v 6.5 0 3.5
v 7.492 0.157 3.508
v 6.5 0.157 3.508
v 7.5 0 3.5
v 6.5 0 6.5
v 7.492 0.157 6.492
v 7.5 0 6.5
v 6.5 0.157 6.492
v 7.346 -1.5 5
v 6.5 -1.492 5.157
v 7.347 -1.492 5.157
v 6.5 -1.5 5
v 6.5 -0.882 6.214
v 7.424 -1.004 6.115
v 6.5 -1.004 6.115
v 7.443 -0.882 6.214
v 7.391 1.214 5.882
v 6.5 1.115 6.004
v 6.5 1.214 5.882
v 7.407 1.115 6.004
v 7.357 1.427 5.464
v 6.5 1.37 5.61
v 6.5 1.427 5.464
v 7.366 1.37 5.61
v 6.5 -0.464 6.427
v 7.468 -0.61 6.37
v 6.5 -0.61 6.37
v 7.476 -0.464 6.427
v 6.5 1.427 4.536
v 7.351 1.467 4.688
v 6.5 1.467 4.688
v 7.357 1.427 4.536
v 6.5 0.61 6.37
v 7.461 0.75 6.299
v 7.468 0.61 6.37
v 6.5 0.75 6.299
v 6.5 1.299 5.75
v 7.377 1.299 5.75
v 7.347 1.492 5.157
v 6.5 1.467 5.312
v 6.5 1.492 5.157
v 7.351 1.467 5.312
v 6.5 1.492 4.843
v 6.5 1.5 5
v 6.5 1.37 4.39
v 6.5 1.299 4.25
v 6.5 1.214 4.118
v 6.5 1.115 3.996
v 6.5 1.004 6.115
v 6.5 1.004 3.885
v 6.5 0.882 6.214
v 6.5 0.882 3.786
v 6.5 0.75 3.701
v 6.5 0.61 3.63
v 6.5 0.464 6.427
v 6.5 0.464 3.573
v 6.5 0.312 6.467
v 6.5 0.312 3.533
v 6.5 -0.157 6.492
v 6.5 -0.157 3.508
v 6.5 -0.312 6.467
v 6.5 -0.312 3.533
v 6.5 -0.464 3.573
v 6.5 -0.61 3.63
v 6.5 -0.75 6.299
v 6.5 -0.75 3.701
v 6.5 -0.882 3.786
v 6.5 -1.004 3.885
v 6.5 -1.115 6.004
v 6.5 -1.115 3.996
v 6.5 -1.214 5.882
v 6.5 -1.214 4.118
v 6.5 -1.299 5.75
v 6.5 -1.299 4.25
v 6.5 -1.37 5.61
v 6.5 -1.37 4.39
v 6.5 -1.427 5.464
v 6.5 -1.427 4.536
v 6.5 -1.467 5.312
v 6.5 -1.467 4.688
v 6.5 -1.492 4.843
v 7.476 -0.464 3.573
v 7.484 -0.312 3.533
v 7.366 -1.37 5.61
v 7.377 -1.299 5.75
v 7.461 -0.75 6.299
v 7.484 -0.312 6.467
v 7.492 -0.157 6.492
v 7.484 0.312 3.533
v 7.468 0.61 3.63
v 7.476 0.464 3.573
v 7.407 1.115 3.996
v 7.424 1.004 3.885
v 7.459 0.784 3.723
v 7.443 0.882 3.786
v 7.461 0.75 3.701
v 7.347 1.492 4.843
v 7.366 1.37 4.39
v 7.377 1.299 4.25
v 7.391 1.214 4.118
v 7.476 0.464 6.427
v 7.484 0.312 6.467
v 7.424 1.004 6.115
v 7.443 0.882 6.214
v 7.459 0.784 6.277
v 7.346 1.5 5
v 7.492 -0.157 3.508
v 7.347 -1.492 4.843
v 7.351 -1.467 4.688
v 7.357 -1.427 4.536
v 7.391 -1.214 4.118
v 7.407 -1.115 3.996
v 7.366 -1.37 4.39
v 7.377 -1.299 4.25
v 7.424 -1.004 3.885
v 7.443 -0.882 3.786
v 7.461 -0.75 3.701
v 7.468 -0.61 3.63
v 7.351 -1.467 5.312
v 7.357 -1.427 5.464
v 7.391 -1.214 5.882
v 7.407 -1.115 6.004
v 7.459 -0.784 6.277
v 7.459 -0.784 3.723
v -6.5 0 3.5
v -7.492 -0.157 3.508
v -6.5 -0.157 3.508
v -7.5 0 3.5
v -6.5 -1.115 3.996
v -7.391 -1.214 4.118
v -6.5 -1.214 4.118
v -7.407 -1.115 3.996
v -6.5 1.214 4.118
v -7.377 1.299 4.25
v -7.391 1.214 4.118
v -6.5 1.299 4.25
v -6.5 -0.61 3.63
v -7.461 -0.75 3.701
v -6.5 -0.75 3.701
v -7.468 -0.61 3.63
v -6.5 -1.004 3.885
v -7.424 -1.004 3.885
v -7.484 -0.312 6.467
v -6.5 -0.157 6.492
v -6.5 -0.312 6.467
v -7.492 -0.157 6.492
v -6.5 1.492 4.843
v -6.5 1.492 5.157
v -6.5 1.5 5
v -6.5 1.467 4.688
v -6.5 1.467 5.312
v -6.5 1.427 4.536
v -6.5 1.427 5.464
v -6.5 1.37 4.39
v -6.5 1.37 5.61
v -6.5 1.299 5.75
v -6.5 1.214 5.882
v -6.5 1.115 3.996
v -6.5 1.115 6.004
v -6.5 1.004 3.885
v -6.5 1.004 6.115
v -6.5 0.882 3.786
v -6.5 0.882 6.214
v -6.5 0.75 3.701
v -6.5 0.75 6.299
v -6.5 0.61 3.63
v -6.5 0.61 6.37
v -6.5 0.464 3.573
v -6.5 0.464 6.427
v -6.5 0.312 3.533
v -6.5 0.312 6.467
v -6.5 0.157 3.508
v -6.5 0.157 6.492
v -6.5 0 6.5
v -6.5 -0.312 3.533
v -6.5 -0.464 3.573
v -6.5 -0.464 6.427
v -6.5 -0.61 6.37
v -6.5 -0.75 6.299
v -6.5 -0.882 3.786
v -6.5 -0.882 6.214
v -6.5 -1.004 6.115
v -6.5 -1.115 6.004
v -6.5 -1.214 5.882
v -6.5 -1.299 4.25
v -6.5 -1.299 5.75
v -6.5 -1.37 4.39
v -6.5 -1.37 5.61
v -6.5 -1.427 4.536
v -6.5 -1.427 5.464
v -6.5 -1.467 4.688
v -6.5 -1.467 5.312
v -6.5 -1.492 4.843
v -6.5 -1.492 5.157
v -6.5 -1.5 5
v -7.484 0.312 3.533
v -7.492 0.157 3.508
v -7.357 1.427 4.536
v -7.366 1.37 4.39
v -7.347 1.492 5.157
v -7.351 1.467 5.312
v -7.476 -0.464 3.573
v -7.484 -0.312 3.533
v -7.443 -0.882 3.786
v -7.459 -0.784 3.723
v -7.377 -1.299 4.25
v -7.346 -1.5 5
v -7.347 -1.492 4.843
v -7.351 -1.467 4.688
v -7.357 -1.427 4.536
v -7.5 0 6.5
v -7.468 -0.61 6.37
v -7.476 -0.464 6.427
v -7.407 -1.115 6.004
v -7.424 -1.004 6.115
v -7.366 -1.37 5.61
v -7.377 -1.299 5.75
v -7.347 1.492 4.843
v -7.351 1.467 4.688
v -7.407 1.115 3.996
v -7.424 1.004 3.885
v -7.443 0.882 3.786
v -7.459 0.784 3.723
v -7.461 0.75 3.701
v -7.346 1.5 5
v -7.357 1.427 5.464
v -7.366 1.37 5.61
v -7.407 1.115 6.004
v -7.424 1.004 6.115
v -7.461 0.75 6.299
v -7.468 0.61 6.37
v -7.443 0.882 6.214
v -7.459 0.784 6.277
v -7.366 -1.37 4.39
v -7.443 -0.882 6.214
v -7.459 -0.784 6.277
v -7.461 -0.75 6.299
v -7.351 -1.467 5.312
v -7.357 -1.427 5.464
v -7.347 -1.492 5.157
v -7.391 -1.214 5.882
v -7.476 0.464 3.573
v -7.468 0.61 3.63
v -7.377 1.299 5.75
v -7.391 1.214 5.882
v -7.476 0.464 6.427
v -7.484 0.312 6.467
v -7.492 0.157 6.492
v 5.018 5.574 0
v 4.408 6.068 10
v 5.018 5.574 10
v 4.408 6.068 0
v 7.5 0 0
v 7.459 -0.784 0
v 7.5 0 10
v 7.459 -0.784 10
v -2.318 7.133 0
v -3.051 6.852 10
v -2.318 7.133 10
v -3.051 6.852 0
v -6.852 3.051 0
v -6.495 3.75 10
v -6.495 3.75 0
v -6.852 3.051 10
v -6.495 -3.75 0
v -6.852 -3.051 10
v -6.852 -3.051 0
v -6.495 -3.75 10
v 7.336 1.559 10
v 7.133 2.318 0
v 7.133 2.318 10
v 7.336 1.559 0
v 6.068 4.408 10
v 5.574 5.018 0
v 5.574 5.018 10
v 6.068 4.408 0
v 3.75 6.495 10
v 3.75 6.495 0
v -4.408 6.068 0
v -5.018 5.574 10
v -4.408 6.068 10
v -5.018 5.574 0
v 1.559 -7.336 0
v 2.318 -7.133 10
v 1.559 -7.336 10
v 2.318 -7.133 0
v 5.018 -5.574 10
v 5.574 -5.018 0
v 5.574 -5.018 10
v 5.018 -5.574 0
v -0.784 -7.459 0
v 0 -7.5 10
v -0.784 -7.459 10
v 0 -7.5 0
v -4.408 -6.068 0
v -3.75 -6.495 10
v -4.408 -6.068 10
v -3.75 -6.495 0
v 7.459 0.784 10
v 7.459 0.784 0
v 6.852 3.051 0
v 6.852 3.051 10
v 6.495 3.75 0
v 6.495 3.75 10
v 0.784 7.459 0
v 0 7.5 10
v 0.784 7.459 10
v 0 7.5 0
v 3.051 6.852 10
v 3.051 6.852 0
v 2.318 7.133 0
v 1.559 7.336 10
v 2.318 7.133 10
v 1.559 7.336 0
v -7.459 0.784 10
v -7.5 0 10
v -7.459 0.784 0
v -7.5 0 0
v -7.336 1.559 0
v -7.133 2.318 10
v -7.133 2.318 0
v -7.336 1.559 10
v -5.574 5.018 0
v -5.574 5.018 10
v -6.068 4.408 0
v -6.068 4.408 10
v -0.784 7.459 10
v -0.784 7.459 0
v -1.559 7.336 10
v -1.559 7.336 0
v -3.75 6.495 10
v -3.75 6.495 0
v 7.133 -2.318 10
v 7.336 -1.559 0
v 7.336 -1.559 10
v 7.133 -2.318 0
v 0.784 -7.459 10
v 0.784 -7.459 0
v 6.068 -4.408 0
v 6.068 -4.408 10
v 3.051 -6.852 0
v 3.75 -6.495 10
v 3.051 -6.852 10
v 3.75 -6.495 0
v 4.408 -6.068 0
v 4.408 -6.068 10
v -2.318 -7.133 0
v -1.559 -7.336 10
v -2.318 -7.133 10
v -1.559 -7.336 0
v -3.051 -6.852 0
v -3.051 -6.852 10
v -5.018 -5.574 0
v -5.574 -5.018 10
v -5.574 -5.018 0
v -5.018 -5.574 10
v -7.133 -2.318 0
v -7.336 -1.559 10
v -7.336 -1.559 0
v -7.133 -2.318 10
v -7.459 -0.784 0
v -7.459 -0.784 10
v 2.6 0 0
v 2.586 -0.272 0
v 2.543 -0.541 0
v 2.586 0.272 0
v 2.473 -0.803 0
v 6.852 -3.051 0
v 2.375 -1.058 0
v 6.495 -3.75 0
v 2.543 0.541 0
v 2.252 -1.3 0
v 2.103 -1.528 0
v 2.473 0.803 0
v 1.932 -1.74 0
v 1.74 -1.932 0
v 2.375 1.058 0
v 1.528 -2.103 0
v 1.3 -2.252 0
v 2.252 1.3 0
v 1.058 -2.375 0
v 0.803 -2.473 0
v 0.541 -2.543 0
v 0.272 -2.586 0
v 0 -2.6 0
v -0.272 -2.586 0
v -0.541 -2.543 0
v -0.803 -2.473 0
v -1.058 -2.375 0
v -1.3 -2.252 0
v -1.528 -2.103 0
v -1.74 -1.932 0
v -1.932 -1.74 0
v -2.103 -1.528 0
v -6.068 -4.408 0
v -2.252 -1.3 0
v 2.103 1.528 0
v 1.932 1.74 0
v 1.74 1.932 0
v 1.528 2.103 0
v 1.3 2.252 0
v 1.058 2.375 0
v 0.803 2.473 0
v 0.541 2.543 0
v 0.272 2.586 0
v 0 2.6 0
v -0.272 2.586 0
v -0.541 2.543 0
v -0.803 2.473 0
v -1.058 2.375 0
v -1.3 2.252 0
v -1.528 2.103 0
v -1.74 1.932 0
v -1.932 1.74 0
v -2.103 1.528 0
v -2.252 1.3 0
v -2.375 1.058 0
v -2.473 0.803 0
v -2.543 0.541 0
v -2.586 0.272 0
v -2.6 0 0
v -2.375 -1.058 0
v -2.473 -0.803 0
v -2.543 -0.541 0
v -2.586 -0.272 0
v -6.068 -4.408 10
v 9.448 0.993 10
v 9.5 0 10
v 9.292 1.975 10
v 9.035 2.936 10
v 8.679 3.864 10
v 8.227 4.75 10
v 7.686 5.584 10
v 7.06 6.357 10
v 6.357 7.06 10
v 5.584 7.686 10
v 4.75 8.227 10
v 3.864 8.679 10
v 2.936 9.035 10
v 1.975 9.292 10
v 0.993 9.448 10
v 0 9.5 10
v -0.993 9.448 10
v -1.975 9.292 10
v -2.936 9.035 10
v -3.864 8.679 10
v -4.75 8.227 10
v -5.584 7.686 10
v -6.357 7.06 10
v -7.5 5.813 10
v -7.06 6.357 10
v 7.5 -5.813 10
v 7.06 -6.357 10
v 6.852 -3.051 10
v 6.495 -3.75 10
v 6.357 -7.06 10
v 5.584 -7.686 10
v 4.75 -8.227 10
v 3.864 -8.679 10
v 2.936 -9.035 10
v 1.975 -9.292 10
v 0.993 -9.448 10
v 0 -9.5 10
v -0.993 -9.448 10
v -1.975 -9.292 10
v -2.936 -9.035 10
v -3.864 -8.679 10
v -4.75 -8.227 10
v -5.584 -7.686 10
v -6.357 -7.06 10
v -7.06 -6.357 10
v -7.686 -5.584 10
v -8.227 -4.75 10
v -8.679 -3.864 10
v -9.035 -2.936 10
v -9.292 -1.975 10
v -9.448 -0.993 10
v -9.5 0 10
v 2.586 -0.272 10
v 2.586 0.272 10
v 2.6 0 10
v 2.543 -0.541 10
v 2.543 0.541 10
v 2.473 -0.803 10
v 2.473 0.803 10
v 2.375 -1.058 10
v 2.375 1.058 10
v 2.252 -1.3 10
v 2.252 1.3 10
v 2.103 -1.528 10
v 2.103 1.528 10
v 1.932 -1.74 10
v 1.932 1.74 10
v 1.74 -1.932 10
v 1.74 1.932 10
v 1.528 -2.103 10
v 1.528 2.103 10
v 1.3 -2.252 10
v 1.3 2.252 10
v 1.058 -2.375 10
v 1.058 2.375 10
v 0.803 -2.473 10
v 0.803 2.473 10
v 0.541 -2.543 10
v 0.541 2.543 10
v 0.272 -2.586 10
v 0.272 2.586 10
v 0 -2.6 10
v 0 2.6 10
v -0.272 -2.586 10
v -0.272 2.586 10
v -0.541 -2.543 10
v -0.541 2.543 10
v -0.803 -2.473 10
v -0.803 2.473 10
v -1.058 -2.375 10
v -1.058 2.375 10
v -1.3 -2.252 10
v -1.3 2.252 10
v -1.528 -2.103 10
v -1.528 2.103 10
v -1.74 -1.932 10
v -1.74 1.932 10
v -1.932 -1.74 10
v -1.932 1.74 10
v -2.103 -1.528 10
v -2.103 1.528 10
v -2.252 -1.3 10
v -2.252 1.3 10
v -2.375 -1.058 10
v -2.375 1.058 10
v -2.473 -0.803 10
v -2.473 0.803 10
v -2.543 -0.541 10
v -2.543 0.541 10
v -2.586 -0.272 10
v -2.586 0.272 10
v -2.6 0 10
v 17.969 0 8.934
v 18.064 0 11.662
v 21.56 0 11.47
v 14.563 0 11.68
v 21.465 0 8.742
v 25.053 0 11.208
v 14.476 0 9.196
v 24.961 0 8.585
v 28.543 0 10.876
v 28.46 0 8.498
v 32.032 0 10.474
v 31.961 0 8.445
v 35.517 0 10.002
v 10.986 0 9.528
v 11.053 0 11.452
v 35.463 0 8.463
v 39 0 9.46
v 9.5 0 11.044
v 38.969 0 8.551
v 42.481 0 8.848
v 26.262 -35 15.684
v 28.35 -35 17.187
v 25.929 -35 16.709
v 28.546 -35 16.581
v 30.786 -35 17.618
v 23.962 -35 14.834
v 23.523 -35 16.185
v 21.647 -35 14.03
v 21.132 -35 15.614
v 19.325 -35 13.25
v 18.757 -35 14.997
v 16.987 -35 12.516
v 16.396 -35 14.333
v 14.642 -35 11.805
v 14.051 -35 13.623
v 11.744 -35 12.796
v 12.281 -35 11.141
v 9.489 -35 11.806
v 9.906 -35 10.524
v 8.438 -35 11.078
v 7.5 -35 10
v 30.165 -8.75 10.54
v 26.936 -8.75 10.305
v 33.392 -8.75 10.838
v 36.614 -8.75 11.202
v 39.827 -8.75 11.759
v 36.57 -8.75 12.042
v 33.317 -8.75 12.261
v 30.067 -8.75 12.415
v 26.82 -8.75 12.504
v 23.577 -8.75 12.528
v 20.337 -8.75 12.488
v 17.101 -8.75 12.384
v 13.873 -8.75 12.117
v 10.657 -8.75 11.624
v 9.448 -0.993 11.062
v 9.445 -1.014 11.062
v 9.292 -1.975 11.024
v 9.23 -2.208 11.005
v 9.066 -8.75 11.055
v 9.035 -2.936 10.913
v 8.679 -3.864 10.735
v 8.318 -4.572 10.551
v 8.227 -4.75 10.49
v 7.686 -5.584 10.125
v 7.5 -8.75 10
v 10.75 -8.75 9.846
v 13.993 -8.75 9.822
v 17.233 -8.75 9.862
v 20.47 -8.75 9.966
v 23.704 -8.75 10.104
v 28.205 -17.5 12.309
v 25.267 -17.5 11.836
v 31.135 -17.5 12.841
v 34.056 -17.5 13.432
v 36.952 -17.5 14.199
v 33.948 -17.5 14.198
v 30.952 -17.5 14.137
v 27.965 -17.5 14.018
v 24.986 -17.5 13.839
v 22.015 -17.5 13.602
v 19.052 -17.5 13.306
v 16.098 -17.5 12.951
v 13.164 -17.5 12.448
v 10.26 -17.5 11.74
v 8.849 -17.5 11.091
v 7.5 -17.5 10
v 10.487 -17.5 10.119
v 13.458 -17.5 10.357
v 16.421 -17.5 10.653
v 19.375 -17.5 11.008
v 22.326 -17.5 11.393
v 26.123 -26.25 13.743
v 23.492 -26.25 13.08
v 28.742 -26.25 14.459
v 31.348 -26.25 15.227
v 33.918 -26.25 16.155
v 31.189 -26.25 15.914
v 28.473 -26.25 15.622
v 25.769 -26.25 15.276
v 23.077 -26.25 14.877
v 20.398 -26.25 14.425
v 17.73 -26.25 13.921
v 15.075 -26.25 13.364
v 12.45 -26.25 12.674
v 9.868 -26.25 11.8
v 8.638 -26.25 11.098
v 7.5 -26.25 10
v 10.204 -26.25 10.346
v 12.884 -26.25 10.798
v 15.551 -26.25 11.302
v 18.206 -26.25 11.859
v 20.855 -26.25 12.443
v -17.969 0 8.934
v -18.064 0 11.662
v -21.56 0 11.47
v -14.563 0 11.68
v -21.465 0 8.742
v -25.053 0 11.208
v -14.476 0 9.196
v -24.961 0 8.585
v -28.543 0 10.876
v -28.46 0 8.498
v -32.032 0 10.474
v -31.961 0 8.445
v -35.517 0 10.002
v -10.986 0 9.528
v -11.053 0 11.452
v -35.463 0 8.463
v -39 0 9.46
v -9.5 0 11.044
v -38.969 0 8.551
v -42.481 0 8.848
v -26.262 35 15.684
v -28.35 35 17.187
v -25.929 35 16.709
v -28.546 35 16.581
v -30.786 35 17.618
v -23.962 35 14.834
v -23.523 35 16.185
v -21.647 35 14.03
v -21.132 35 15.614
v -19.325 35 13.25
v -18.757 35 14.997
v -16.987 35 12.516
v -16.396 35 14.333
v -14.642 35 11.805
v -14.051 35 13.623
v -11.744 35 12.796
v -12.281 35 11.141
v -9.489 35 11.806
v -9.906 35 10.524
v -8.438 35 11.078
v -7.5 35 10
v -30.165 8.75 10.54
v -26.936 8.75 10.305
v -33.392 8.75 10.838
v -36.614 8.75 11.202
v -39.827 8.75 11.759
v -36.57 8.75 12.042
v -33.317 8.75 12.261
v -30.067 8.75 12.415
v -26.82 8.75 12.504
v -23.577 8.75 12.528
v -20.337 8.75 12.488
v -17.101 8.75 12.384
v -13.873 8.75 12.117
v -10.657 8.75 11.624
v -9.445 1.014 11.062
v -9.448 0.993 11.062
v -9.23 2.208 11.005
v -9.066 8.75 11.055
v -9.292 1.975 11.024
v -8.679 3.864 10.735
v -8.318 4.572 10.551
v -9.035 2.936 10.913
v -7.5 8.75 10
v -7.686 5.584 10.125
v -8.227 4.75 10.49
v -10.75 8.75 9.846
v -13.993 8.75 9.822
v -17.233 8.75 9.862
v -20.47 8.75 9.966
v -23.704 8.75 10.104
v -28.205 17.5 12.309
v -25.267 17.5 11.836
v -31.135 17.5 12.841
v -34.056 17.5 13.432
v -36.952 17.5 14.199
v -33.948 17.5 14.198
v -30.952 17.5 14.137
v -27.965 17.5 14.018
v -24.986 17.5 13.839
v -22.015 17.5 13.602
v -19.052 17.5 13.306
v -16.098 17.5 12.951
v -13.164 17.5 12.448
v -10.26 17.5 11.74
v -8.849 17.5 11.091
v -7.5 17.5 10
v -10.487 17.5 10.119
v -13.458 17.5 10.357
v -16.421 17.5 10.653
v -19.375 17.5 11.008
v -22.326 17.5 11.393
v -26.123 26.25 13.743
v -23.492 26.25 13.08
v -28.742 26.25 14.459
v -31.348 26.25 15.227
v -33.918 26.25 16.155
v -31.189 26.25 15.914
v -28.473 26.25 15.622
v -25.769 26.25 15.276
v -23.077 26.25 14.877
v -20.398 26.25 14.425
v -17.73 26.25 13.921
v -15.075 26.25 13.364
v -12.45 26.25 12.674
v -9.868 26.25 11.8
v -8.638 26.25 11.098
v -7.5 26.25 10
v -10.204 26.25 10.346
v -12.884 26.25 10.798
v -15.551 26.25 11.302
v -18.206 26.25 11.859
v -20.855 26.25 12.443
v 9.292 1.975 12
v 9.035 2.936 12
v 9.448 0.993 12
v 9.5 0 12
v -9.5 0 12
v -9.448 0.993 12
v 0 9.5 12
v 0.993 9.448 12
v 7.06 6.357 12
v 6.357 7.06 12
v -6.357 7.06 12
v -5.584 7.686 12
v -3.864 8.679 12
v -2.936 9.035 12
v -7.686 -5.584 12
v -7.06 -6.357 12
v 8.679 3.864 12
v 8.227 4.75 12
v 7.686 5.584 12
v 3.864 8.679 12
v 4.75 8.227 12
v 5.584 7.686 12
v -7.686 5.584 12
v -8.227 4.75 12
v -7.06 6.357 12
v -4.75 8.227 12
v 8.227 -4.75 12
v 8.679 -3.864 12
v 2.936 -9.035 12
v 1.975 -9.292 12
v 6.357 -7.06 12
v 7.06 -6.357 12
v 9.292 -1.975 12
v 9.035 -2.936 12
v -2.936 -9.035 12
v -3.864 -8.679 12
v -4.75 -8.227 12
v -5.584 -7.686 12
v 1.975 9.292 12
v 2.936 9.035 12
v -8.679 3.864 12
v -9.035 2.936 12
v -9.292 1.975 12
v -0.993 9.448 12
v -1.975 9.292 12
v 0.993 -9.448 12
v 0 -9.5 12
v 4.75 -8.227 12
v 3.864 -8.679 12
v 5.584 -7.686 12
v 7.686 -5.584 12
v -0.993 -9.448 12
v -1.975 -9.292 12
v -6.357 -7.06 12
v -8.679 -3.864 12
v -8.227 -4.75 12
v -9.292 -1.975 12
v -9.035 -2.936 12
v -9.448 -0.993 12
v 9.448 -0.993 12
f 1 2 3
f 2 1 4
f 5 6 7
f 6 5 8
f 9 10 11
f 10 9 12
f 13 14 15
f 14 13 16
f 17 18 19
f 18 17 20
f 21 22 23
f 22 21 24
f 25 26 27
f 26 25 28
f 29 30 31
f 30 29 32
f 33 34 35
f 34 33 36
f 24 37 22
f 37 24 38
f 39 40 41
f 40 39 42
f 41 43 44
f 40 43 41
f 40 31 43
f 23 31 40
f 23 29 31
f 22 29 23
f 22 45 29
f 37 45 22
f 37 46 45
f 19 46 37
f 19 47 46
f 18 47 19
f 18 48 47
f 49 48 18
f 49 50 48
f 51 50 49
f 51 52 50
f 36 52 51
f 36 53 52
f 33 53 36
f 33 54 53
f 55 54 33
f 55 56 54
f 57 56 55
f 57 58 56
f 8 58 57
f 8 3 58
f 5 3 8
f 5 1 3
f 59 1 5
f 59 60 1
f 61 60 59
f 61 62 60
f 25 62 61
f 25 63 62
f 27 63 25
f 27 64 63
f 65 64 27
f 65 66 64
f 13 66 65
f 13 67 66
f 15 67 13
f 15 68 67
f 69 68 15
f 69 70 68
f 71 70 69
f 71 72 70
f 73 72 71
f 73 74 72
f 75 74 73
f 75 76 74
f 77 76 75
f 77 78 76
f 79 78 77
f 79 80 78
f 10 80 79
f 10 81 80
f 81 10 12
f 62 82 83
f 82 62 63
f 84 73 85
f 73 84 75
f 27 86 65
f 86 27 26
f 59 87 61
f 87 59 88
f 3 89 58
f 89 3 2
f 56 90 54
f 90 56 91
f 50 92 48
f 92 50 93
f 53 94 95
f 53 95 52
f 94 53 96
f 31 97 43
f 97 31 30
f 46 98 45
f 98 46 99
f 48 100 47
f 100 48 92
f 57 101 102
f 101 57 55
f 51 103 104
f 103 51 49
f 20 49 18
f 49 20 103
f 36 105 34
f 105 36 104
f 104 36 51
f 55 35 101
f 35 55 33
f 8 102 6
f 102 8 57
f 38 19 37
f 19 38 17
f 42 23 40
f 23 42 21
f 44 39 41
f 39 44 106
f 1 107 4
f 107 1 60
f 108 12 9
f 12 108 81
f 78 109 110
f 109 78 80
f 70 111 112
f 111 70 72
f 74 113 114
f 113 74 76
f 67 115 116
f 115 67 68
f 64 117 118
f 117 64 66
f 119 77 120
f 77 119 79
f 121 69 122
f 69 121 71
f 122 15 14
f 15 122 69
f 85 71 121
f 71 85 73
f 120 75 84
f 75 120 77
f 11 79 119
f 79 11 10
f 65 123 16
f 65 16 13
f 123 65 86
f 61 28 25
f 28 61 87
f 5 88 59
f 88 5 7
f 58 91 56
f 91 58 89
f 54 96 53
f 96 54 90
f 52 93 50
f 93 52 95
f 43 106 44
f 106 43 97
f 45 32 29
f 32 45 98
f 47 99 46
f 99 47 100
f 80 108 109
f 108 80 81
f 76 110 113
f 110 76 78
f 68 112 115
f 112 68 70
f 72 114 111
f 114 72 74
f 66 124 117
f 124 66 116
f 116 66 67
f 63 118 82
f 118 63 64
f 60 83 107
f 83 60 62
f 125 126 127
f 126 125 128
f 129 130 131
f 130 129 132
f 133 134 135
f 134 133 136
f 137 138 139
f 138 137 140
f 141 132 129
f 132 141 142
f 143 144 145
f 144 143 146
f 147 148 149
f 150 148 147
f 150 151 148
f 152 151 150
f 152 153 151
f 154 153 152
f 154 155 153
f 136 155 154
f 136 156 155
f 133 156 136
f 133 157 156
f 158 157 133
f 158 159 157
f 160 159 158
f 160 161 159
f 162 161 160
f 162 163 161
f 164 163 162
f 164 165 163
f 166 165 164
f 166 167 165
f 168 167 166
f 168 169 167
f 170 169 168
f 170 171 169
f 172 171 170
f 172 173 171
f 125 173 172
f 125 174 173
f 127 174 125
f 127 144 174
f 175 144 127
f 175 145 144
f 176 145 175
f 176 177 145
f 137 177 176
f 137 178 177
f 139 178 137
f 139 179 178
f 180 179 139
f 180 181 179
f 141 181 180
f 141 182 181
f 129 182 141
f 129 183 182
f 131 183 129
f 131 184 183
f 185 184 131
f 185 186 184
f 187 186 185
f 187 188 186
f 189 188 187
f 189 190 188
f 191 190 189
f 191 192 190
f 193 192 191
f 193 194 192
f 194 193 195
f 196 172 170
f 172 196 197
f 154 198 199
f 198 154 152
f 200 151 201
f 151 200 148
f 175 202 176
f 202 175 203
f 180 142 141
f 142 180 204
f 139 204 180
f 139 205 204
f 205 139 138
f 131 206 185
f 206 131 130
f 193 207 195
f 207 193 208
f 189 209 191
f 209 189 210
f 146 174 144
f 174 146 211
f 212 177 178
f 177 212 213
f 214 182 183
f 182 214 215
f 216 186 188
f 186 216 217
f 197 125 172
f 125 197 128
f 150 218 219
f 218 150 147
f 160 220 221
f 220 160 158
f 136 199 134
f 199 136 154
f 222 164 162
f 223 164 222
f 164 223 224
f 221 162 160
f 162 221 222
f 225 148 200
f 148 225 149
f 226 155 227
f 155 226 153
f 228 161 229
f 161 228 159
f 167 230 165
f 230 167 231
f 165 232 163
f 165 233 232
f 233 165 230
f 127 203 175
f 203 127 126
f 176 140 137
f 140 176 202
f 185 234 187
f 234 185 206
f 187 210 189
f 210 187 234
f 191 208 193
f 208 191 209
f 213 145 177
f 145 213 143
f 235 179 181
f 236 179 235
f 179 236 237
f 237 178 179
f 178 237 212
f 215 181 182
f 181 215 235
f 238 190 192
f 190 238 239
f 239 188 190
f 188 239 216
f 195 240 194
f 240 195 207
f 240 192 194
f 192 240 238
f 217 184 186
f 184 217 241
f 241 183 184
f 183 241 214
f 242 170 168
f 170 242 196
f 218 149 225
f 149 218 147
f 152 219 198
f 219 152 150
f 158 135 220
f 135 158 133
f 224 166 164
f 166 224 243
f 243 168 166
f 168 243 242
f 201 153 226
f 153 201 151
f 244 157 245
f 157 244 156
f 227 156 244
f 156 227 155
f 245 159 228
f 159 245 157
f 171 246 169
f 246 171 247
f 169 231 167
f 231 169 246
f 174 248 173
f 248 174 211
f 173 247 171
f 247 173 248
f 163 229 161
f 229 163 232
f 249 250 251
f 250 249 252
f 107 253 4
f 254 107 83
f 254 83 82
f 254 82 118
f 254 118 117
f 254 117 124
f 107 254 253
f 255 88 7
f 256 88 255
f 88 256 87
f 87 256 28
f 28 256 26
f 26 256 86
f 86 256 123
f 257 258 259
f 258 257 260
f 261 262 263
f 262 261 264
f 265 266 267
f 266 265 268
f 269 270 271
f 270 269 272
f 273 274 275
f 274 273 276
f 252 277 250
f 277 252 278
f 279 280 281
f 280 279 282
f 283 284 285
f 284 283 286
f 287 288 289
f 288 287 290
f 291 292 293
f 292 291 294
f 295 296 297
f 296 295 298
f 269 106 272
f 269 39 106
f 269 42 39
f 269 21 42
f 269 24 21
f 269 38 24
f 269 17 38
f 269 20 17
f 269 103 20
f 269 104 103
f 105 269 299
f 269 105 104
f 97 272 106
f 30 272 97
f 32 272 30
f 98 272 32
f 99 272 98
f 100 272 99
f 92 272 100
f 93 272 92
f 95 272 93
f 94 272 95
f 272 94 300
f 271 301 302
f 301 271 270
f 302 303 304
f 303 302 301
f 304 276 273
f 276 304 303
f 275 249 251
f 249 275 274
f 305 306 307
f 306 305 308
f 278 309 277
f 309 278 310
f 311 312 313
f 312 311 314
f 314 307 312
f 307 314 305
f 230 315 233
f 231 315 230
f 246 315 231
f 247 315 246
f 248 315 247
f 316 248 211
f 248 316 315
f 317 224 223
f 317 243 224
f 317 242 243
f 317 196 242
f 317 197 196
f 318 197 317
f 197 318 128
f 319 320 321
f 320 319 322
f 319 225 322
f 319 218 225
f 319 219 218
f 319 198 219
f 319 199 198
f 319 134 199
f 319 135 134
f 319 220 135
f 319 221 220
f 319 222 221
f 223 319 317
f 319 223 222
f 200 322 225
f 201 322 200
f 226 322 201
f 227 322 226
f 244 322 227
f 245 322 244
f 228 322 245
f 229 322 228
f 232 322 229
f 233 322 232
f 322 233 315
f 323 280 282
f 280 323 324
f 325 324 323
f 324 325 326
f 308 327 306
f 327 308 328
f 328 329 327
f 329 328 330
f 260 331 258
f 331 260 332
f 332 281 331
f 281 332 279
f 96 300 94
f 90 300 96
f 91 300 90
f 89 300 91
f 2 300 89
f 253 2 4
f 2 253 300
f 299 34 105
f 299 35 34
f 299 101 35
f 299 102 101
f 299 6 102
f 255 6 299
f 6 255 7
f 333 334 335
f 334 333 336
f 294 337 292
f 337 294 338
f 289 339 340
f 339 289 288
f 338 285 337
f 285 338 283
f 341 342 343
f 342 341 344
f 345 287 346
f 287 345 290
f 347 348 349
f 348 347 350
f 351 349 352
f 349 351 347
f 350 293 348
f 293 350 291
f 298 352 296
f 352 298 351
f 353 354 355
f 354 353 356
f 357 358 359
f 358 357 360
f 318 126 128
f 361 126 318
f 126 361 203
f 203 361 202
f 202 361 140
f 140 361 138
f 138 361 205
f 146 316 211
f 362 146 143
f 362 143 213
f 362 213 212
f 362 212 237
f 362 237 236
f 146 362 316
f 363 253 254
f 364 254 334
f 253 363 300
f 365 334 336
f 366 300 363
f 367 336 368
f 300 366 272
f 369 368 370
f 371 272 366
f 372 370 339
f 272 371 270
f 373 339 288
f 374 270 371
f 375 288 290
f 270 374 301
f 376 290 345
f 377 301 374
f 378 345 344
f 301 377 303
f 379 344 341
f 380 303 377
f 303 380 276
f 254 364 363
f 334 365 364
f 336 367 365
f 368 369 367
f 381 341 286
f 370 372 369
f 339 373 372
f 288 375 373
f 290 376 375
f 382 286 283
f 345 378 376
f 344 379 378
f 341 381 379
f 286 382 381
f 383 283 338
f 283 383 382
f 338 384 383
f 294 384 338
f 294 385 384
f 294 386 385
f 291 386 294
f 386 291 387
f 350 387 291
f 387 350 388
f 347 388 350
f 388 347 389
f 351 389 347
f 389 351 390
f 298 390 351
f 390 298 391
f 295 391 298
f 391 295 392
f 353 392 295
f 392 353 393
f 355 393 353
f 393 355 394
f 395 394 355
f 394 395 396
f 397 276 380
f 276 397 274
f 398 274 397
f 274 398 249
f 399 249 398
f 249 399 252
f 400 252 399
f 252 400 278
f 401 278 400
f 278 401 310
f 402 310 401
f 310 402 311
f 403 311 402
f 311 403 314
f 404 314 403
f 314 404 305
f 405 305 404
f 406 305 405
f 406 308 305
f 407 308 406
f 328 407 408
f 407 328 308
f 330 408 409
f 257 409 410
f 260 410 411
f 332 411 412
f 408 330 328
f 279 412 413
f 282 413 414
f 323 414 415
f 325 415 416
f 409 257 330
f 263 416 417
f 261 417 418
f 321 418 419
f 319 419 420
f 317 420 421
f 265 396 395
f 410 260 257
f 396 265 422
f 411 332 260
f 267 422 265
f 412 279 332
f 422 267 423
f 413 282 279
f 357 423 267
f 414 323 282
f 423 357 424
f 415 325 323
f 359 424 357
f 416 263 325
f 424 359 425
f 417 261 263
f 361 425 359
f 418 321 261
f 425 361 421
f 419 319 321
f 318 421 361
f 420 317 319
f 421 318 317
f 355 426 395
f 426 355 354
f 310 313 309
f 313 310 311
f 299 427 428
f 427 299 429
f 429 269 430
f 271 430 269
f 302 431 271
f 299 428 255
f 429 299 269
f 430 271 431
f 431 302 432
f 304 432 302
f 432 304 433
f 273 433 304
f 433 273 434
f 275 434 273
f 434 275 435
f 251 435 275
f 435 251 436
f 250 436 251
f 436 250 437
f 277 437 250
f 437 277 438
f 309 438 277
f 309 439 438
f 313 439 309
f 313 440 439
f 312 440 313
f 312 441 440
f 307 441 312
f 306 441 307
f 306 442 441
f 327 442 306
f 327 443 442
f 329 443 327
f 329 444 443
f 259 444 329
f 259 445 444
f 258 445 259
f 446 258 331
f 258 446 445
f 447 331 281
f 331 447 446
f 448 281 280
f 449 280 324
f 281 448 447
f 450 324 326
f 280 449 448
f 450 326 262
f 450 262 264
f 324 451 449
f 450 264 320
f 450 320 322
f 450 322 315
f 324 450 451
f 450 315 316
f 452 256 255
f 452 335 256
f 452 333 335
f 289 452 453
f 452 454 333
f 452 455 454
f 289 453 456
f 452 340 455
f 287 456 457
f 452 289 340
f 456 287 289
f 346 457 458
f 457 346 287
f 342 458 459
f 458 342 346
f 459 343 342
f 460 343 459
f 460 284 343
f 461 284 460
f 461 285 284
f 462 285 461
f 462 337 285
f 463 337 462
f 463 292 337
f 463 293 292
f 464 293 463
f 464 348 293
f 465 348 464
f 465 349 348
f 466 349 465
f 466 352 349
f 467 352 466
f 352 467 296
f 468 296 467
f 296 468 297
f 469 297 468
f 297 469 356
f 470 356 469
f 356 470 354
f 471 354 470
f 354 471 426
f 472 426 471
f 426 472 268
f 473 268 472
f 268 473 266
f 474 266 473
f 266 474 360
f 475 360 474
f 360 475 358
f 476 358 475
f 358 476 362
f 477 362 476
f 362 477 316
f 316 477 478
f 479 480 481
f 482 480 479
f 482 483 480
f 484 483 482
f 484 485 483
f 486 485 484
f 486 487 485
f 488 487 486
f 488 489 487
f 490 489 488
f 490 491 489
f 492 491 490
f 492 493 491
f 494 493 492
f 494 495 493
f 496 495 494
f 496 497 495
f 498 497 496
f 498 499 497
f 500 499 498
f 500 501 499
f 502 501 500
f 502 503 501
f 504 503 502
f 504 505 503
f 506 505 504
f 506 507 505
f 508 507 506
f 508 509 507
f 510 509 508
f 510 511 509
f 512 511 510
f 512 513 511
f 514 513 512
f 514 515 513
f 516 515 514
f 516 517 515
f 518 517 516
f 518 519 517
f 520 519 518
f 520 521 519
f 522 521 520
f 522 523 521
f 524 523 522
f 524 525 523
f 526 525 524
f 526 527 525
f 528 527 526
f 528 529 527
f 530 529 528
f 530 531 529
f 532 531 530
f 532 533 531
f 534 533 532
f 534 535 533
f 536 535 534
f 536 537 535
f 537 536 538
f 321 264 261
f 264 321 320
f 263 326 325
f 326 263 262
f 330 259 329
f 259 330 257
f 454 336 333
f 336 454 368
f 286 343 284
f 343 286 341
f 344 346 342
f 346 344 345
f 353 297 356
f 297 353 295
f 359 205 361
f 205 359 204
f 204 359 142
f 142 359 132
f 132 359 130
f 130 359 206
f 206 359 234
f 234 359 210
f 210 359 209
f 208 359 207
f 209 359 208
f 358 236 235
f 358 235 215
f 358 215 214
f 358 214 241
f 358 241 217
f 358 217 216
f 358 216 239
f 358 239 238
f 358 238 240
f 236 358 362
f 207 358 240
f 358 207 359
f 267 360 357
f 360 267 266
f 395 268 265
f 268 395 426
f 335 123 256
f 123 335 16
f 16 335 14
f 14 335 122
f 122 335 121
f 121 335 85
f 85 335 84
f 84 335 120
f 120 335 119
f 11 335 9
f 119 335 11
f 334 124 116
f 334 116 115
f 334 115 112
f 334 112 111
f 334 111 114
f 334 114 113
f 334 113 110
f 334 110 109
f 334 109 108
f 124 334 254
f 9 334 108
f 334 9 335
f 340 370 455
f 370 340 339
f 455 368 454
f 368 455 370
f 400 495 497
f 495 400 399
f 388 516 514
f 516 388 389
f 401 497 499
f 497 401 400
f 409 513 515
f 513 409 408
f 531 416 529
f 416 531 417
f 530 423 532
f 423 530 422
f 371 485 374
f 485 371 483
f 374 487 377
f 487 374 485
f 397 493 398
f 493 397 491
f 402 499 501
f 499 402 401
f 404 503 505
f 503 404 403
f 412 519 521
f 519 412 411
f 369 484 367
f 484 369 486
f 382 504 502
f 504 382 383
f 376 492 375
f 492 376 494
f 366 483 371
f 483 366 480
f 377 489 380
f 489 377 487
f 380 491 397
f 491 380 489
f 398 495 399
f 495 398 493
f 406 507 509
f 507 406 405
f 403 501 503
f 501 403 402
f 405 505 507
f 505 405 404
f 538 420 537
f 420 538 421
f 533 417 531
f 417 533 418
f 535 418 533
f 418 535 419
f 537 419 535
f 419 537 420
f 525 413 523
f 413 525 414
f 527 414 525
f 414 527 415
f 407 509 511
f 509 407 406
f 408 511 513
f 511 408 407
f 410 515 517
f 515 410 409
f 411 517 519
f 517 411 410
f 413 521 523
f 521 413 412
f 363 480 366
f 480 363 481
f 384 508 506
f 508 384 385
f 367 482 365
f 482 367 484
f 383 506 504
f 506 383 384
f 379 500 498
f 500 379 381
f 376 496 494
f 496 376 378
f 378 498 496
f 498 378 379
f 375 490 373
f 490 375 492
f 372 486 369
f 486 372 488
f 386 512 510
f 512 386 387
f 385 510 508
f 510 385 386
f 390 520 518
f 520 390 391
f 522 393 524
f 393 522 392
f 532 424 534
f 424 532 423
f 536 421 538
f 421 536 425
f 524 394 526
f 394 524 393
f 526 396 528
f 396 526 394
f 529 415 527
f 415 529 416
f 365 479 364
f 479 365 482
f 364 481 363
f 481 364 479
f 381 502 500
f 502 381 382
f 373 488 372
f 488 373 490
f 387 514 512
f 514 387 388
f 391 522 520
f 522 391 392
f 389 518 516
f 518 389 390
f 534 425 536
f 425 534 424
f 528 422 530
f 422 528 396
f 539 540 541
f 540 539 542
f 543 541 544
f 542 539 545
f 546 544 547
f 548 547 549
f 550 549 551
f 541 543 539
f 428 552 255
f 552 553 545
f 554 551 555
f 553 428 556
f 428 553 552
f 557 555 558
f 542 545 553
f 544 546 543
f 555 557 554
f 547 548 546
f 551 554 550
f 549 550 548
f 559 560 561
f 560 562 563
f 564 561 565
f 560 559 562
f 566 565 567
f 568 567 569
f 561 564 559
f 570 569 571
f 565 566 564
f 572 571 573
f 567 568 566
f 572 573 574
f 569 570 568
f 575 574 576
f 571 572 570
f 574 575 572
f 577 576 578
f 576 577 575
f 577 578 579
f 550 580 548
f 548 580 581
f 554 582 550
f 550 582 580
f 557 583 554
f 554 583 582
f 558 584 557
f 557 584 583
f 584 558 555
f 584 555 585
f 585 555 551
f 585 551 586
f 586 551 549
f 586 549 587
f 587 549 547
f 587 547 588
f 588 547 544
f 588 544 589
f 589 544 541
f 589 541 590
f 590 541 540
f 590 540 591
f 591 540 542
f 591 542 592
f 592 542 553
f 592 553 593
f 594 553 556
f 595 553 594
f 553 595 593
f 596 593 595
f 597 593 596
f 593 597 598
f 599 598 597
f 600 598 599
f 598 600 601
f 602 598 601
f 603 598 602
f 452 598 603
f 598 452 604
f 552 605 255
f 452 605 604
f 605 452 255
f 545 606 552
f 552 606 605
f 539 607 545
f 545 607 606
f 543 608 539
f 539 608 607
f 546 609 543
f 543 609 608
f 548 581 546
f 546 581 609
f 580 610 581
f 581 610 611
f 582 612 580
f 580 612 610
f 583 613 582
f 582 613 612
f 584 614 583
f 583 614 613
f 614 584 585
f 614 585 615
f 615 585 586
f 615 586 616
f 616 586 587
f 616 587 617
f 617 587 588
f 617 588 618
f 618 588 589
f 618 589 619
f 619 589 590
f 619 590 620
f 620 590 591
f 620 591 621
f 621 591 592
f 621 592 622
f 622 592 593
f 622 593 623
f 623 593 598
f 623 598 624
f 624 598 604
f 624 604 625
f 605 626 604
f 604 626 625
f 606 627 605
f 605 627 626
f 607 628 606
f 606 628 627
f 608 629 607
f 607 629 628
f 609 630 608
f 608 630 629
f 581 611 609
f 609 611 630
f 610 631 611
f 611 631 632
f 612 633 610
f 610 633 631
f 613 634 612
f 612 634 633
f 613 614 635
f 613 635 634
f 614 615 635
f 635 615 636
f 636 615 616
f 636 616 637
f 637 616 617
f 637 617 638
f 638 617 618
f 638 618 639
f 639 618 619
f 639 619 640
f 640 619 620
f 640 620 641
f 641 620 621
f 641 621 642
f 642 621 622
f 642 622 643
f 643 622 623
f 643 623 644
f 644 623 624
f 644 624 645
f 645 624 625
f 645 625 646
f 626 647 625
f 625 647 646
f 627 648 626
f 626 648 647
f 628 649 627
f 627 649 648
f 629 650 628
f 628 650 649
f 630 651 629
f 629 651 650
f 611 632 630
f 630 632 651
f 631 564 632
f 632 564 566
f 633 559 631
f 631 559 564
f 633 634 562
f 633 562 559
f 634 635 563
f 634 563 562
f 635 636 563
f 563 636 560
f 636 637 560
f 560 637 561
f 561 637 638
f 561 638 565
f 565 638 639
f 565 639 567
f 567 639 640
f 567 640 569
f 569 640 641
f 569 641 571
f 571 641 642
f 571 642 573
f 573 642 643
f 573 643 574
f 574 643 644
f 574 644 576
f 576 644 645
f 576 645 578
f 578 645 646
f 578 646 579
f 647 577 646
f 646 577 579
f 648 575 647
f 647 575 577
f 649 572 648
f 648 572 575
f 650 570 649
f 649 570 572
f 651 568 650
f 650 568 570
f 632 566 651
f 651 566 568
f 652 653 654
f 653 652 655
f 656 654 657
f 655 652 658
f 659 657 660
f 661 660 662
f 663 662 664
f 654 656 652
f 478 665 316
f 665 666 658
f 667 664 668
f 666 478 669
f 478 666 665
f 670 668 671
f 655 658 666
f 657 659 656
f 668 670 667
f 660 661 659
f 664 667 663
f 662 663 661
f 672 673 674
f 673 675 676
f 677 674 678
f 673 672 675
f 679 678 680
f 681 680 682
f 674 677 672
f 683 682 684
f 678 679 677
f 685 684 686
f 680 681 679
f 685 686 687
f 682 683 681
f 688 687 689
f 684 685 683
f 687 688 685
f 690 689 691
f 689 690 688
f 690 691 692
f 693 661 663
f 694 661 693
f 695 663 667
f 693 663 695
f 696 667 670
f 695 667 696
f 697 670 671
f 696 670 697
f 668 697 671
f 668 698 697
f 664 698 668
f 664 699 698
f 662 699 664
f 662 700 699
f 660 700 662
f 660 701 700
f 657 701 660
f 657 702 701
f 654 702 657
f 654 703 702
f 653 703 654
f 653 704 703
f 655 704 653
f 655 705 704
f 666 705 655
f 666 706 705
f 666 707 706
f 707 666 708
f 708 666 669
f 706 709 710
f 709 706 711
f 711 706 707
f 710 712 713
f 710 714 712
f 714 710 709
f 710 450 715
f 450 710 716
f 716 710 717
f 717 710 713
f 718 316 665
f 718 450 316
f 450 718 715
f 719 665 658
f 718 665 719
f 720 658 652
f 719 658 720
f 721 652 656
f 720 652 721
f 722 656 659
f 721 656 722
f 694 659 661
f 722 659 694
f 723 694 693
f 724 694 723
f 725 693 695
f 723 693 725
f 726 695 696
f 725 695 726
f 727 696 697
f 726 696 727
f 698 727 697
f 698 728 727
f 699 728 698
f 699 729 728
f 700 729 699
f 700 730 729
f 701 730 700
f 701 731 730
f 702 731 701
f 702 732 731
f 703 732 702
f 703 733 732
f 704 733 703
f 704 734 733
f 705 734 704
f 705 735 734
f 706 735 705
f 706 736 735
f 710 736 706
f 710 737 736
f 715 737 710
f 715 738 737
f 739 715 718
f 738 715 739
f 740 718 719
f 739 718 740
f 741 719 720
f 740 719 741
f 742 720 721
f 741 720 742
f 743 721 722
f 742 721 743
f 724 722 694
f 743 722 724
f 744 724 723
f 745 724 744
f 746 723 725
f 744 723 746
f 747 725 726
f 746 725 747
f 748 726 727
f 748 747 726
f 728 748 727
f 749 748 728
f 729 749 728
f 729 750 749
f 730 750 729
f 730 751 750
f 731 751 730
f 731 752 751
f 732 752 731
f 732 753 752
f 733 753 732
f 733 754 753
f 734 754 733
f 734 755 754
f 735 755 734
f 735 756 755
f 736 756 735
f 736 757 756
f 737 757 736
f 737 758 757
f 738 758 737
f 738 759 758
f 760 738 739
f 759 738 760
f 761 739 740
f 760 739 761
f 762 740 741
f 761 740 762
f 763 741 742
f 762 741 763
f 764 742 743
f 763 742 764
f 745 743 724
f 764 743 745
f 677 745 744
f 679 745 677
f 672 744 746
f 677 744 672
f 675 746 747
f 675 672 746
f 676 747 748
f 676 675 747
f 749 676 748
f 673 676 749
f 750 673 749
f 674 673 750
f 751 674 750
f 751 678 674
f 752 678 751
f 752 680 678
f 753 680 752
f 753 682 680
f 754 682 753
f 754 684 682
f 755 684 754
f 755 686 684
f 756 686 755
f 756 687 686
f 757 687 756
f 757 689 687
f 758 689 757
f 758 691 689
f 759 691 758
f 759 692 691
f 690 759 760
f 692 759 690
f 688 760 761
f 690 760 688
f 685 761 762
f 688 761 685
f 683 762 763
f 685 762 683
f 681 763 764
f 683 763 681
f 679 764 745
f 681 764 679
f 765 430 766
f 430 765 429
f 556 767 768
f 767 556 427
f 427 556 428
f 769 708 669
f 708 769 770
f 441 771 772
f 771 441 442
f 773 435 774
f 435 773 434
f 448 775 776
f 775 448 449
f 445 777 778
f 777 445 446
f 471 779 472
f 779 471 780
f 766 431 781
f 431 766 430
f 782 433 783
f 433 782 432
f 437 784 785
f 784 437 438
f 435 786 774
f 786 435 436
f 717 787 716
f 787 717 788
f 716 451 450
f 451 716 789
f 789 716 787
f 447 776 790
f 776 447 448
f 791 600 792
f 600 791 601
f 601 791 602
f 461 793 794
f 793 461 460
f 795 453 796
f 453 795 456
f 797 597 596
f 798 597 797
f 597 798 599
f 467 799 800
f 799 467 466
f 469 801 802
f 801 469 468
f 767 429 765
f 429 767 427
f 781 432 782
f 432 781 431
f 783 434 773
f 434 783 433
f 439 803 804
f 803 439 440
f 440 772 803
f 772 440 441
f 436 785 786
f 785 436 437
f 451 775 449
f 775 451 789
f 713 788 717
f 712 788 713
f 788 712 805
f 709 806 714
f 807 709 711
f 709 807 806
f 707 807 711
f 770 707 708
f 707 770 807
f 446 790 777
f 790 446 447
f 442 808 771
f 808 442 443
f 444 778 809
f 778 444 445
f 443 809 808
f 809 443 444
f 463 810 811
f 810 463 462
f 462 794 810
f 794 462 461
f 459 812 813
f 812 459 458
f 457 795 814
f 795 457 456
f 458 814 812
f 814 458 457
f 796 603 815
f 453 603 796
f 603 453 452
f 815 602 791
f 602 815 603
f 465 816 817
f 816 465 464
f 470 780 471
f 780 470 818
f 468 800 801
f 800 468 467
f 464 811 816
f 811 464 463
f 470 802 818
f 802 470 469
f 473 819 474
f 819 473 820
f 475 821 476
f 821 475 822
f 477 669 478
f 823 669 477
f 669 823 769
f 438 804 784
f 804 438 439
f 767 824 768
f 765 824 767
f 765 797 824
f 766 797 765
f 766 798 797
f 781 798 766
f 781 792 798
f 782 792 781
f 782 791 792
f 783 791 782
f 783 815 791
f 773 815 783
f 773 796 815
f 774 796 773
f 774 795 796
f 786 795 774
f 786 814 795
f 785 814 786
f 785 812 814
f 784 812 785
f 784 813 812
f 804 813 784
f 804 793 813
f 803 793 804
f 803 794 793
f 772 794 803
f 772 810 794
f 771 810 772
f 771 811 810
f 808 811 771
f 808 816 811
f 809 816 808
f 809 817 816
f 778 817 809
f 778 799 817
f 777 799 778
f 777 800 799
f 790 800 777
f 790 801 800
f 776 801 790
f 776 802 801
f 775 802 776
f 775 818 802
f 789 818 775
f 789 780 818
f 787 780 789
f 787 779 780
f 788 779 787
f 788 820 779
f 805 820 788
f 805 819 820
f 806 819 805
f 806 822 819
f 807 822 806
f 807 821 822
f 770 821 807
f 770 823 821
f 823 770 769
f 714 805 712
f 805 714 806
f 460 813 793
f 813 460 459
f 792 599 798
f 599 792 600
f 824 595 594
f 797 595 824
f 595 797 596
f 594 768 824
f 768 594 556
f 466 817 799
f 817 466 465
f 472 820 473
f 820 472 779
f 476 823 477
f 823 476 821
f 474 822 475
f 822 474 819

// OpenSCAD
/*
 * COMPLETE MOTOR + IMPELLER ASSEMBLY
 * For CFD fluid testing and visualization
 * 
 * This model includes:
 *   - Brushless motor (2204-2206 size)
 *   - Motor shaft (5mm)
 *   - Impeller hub
 *   - 3 impeller variants (bladeless, AI-blades, hybrid)
 *   - Mounting plate
 * 
 * Usage:
 *   - Render full assembly: F6
 *   - Export for CFD: Set EXPORT_MODE = "impeller_only"
 *   - Change design: Set IMPELLER_TYPE = "bladeless" | "bladed" | "hybrid"
 */

// ============================================================================
// CONFIGURATION PARAMETERS (AI-Optimizable)
// ============================================================================

// General Settings
$fn = 60;  // Resolution for CFD export (increase to 100 for final)

// Export Mode
EXPORT_MODE = "impeller_only";  // Options: "full_assembly", "impeller_only", "motor_only"

// Impeller Type
IMPELLER_TYPE = "bladed";  // Options: "bladeless", "bladed", "hybrid"

// Motor Specifications (2204-2206 brushless)
MOTOR_DIAMETER = 28;         // mm
MOTOR_HEIGHT = 25;           // mm
MOTOR_SHAFT_DIAMETER = 5;    // mm (standard)
MOTOR_SHAFT_LENGTH = 15;     // mm (extends above motor)
MOTOR_MOUNT_PATTERN = 16;    // mm (16x16 or 19x19 common)
MOTOR_SCREW_DIAMETER = 3;    // M3 screws

// Impeller Parameters - BLADELESS
BLADELESS_OUTER_DIAMETER = 90;    // mm
BLADELESS_AIR_GAP = 0.8;          // mm (optimize: 0.6-1.2)
BLADELESS_THROAT_RATIO = 0.72;    // (optimize: 0.65-0.80)
BLADELESS_EXPANSION_ANGLE = 18;   // degrees (optimize: 12-25)
BLADELESS_RING_THICKNESS = 3;     // mm (optimize: 2-4)
BLADELESS_HEIGHT = 24;            // mm

// Impeller Parameters - BLADED
BLADED_DIAMETER = 85;
BLADED_HUB_DIAMETER = 15;         // mm (optimize: 12-20)
BLADED_BLADE_COUNT = 2;
BLADED_ROOT_CHORD = 35;
BLADED_TIP_CHORD_RATIO = 0.7;    // (optimize: 0.6-0.8)
BLADED_BLADE_THICKNESS = 2;       // mm (optimize: 1.5-3)
BLADED_BLADE_TWIST = -20;
BLADED_ATTACK_ANGLE = -2;
BLADED_BLADE_HEIGHT = 12;         // mm (optimize: 10-15)

// Hub Parameters
HUB_DIAMETER = 15;
HUB_HEIGHT = 10;
HUB_SET_SCREW_DIAMETER = 3;  // M3 set screw

// Mounting Plate
PLATE_SIZE = 50;
PLATE_THICKNESS = 3;

// ============================================================================
// MOTOR MODEL
// ============================================================================

module brushless_motor_2204() {
    color("DarkSlateGray") {
        // Motor can (bell)
        difference() {
            cylinder(h=MOTOR_HEIGHT, d=MOTOR_DIAMETER);
            
            // Hollow inside (weight reduction visualization)
            translate([0, 0, -0.5])
                cylinder(h=MOTOR_HEIGHT - 5, d=MOTOR_DIAMETER - 4);
            
            // Mounting holes
            for(i = [0:3]) {
                rotate([0, 0, i * 90])
                    translate([MOTOR_MOUNT_PATTERN/2, 0, MOTOR_HEIGHT/2])
                        rotate([90, 0, 0])
                            cylinder(h=MOTOR_DIAMETER, d=MOTOR_SCREW_DIAMETER, center=true);
            }
        }
        
        // Motor base
        translate([0, 0, -3])
            cylinder(h=3, d=MOTOR_DIAMETER - 2);
    }
    
    // Motor shaft
    color("Silver")
        translate([0, 0, MOTOR_HEIGHT])
            cylinder(h=MOTOR_SHAFT_LENGTH, d=MOTOR_SHAFT_DIAMETER);
    
    // Shaft tip (for hub attachment)
    color("Silver")
        translate([0, 0, MOTOR_HEIGHT + MOTOR_SHAFT_LENGTH])
            cylinder(h=2, d=MOTOR_SHAFT_DIAMETER - 0.5);
}

// ============================================================================
// IMPELLER HUB
// ============================================================================

module impeller_hub() {
    color("Gray")
    difference() {
        // Hub body
        cylinder(h=HUB_HEIGHT, d=HUB_DIAMETER);
        
        // Shaft hole (5mm + 0.2mm clearance)
        translate([0, 0, -0.5])
            cylinder(h=HUB_HEIGHT + 1, d=MOTOR_SHAFT_DIAMETER + 0.2);
        
        // Set screw holes (2x for balance)
        for(i = [0:1]) {
            rotate([0, 0, i * 180])
                translate([HUB_DIAMETER/2 - 1, 0, HUB_HEIGHT/2])
                    rotate([0, 90, 0])
                        cylinder(h=5, d=HUB_SET_SCREW_DIAMETER);
        }
    }
}

// ============================================================================
// BLADELESS IMPELLER (Dyson-style)
// ============================================================================

module bladeless_impeller() {
    outer_r = BLADELESS_OUTER_DIAMETER / 2;
    throat_r = outer_r * BLADELESS_THROAT_RATIO;
    gap = BLADELESS_AIR_GAP;
    
    color("SkyBlue", 0.7)
    difference() {
        // Outer ring
        rotate_extrude()
            translate([outer_r - BLADELESS_RING_THICKNESS/2, BLADELESS_HEIGHT/2, 0])
                circle(d=BLADELESS_RING_THICKNESS + BLADELESS_HEIGHT);
        
        // Inner air gap (critical for Coanda effect)
        rotate_extrude()
            translate([outer_r - gap - BLADELESS_RING_THICKNESS/2, BLADELESS_HEIGHT/2, 0])
                circle(d=BLADELESS_RING_THICKNESS + BLADELESS_HEIGHT - 2*gap);
    }
    
    // Base plate (connects to hub)
    color("SkyBlue", 0.7)
    translate([0, 0, -2])
        difference() {
            cylinder(h=2, d=outer_r * 2);
            translate([0, 0, -0.5])
                cylinder(h=3, d=HUB_DIAMETER + 1);
        }
    
    // Air inlet (bell-shaped for smooth flow)
    color("SkyBlue", 0.7)
    translate([0, 0, -2]) {
        difference() {
            cylinder(h=15, d1=throat_r * 2, d2=outer_r * 1.8);
            translate([0, 0, -0.5])
                cylinder(h=16, d1=throat_r * 2 - 3, d2=outer_r * 1.8 - 3);
        }
    }
}

// ============================================================================
// AI-OPTIMIZED BLADED IMPELLER (NACA 2412 profile)
// ============================================================================

module naca_2412_blade(chord, height, twist_angle, attack_angle) {
    // Simplified NACA 2412 airfoil profile
    // Using parametric approximation for 3D printing
    
    color("LightSteelBlue", 0.8)
    linear_extrude(height=height, twist=twist_angle, scale=BLADED_TIP_CHORD_RATIO) {
        rotate([0, 0, attack_angle])
        polygon([
            // Upper surface (cambered)
            [0, 0],
            [chord * 0.05, chord * 0.03],
            [chord * 0.1, chord * 0.045],
            [chord * 0.2, chord * 0.055],
            [chord * 0.3, chord * 0.058],
            [chord * 0.4, chord * 0.056],
            [chord * 0.5, chord * 0.052],
            [chord * 0.6, chord * 0.046],
            [chord * 0.7, chord * 0.038],
            [chord * 0.8, chord * 0.028],
            [chord * 0.9, chord * 0.016],
            [chord * 1.0, chord * 0.002],
            // Lower surface (less cambered)
            [chord * 0.9, -chord * 0.010],
            [chord * 0.8, -chord * 0.016],
            [chord * 0.7, -chord * 0.020],
            [chord * 0.6, -chord * 0.022],
            [chord * 0.5, -chord * 0.023],
            [chord * 0.4, -chord * 0.022],
            [chord * 0.3, -chord * 0.020],
            [chord * 0.2, -chord * 0.016],
            [chord * 0.1, -chord * 0.010],
            [chord * 0.05, -chord * 0.005],
        ]);
    }
}

module bladed_impeller() {
    // Blades
    for(i = [0 : BLADED_BLADE_COUNT - 1]) {
        rotate([0, 0, i * (360 / BLADED_BLADE_COUNT)])
            translate([BLADED_HUB_DIAMETER/2, 0, 0])
                rotate([90, 0, 0])
                    naca_2412_blade(
                        BLADED_ROOT_CHORD, 
                        (BLADED_DIAMETER - BLADED_HUB_DIAMETER) / 2,
                        BLADED_BLADE_TWIST,
                        BLADED_ATTACK_ANGLE
                    );
    }
    
    // Hub disk (connects blades)
    color("LightSteelBlue", 0.8)
    cylinder(h=2, d=BLADED_HUB_DIAMETER + 4);
}

// ============================================================================
// HYBRID IMPELLER (Blades inside bladeless ring)
// ============================================================================

module hybrid_impeller() {
    // Outer bladeless ring
    bladeless_impeller();
    
    // Inner bladed impeller (scaled down to fit)
    scale([0.85, 0.85, 1])
        bladed_impeller();
}

// ============================================================================
// MOUNTING PLATE
// ============================================================================

module mounting_plate() {
    color("DimGray")
    difference() {
        // Base plate
        translate([-PLATE_SIZE/2, -PLATE_SIZE/2, 0])
            cube([PLATE_SIZE, PLATE_SIZE, PLATE_THICKNESS]);
        
        // Center hole for motor shaft
        translate([0, 0, -0.5])
            cylinder(h=PLATE_THICKNESS + 1, d=MOTOR_DIAMETER + 2);
        
        // Motor mounting holes
        for(i = [0:3]) {
            rotate([0, 0, i * 90])
                translate([MOTOR_MOUNT_PATTERN/2, 0, -0.5])
                    cylinder(h=PLATE_THICKNESS + 1, d=MOTOR_SCREW_DIAMETER);
        }
    }
}

// ============================================================================
// COMPLETE ASSEMBLY
// ============================================================================

module complete_assembly() {
    // Mounting plate (bottom)
    translate([0, 0, -PLATE_THICKNESS])
        mounting_plate();
    
    // Motor
    translate([0, 0, 0])
        brushless_motor_2204();
    
    // Hub (on shaft)
    translate([0, 0, MOTOR_HEIGHT + MOTOR_SHAFT_LENGTH - 2])
        impeller_hub();
    
    // Impeller (on hub)
    translate([0, 0, MOTOR_HEIGHT + MOTOR_SHAFT_LENGTH + HUB_HEIGHT]) {
        if (IMPELLER_TYPE == "bladeless") {
            bladeless_impeller();
        } else if (IMPELLER_TYPE == "bladed") {
            bladed_impeller();
        } else if (IMPELLER_TYPE == "hybrid") {
            hybrid_impeller();
        }
    }
}

// ============================================================================
// RENDER BASED ON EXPORT MODE
// ============================================================================

if (EXPORT_MODE == "full_assembly") {
    complete_assembly();
} 
else if (EXPORT_MODE == "impeller_only") {
    // For CFD testing - impeller + hub only
    impeller_hub();
    translate([0, 0, HUB_HEIGHT]) {
        if (IMPELLER_TYPE == "bladeless") {
            bladeless_impeller();
        } else if (IMPELLER_TYPE == "bladed") {
            bladed_impeller();
        } else if (IMPELLER_TYPE == "hybrid") {
            hybrid_impeller();
        }
    }
}
else if (EXPORT_MODE == "motor_only") {
    brushless_motor_2204();
}

// ============================================================================
// ANNOTATIONS FOR VISUALIZATION
// ============================================================================

// Uncomment to show dimensions
/*
color("Red", 0.3)
translate([BLADED_DIAMETER/2 + 10, 0, 20])
    text(str("Ø", BLADED_DIAMETER, "mm"), size=5, halign="left");

color("Green", 0.3)
translate([0, BLADED_DIAMETER/2 + 10, 20])
    text(str(BLADED_BLADE_COUNT, " blades"), size=5, halign="center");
*/

// ============================================================================
// EXPORT NOTES
// ============================================================================

/*
 * TO EXPORT FOR CFD TESTING:
 * 
 * 1. Set EXPORT_MODE = "impeller_only"
 * 2. Set IMPELLER_TYPE = "bladeless" (or "bladed" or "hybrid")
 * 3. Press F6 to render
 * 4. File → Export → Export as STL
 * 5. Use filename: impeller_bladeless_fn60.stl
 * 
 * FOR OPTIMIZATION:
 * - Modify parameters at top (marked with "optimize:")
 * - Re-render and export
 * - Upload to SimScale for CFD
 * - Compare results
 * 
 * RECOMMENDED CFD SETTINGS:
 * - Solver: k-omega SST
 * - RPM: 5000, 7000, 9000
 * - Mesh: 3-5M cells
 * - Boundary: Rotating zone on impeller
 */
